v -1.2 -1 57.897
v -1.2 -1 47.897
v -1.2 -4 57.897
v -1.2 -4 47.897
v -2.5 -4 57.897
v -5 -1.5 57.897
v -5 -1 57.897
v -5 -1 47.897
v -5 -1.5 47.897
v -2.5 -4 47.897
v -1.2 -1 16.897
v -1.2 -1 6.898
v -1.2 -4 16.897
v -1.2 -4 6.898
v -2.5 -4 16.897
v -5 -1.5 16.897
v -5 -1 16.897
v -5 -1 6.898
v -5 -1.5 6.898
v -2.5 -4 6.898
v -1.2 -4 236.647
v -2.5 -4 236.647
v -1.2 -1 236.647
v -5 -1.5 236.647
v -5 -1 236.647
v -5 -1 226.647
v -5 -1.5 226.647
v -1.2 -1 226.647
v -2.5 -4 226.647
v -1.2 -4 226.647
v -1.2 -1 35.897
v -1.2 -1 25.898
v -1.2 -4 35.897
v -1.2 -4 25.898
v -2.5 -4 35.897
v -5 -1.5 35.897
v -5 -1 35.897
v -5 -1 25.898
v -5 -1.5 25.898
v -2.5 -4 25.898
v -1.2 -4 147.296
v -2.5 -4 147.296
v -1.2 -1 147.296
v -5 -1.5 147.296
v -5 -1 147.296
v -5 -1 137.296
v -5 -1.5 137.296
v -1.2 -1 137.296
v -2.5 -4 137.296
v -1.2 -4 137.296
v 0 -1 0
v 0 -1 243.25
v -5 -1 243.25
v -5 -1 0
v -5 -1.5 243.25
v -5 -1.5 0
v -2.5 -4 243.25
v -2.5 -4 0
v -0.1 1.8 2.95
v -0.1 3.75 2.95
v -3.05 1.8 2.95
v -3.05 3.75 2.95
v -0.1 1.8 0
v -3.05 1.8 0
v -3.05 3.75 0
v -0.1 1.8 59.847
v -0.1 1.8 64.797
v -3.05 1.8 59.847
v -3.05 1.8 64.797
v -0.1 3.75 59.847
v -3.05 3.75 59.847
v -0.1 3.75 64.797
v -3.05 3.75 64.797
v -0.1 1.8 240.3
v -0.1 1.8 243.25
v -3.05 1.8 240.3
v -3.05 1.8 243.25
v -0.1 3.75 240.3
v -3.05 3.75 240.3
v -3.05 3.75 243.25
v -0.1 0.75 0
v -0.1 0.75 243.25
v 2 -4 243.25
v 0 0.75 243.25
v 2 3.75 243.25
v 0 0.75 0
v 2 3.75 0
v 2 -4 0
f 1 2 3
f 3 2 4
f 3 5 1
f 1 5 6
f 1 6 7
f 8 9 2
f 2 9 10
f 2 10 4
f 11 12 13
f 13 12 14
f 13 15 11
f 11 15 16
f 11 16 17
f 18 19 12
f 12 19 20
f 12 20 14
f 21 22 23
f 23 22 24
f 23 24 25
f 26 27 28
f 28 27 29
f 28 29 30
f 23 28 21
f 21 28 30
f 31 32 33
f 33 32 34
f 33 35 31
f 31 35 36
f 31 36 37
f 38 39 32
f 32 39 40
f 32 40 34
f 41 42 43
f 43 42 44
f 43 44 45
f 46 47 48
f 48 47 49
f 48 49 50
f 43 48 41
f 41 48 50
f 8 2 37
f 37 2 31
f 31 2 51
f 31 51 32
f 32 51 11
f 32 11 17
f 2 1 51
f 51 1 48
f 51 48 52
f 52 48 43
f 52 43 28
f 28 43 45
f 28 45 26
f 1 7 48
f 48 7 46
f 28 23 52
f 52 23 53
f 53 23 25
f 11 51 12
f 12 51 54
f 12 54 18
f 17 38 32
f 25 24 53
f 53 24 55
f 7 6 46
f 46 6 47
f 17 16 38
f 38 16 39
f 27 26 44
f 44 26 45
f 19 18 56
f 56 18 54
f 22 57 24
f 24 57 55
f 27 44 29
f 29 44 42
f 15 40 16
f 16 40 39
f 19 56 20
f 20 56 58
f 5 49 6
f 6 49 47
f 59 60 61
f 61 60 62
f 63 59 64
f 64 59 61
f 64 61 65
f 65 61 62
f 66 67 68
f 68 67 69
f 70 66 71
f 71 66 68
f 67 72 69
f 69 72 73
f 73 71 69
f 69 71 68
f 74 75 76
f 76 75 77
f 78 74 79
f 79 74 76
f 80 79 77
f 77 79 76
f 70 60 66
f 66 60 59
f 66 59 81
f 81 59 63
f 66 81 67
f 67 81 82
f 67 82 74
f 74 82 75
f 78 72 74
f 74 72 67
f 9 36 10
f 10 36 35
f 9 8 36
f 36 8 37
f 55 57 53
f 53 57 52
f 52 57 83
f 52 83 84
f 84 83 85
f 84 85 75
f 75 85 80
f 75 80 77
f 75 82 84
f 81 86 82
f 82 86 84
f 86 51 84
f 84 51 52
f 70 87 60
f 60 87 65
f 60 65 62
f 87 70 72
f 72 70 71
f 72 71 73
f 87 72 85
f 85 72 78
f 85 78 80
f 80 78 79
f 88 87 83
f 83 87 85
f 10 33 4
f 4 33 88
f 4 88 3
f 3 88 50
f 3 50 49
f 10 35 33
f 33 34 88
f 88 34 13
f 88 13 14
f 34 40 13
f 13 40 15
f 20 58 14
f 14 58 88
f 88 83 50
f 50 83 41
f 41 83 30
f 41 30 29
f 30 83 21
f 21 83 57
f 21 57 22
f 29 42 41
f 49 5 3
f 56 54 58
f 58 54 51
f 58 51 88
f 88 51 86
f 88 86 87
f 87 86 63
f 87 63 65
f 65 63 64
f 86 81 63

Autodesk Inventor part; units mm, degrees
ref_plane "YZ Plane" through (0, 0, 0) normal (1, 0, 0) x (0, 1, 0)
ref_plane "XZ Plane" through (0, 0, 0) normal (0, 1, 0) x (-1, 0, 0)
ref_plane "XY Plane" through (0, 0, 0) normal (0, 0, 1) x (1, 0, 0)
sketch "Sketch1" plane through (0, 0, 0) normal (0, 0, 1) x (1, 0, 0)
  line L0 (0, 3.75) -> (2, 3.75)
  line L1 (2, 3.75) -> (2, -4)
  line L2 (2, -4) -> (0, -4)
  line L3 (0, -4) -> (0, 3.75) construction
  line L4 (0, -4) -> (-5, -4)
  line L5 (-5, -4) -> (-5, -1)
  line L6 (-5, -1) -> (0, -1)
  line L7 (0, 3.75) -> (-1, 3.75)
  line L8 (-1, 3.75) -> (-1, 0.75)
  line L9 (-1, 0.75) -> (0, 0.75)
  line L10 (0, 0.75) -> (0, 3.75) construction
  line L11 (0, 0.75) -> (0, -1)
  point P0 (0, 0)
  point P1 (0, -0.125)
  point P2 (1, 3.75)
  dimension "d0" = 4
  dimension "d1" = 2
  dimension "d5" = 5
  dimension "d6" = 1.75
  dimension "d7" = 3
  dimension "d11" = 3
  dimension "d12" = 3
extrude "Extrusion1" add sketch "Sketch1" along normal blind 243.25
sketch "Sketch2" plane through (-1, 0.75, 0) normal (-1, 0, 0) x (0, 0, 1)
  line L0 (0, 3) -> (0, 0) projected
  line L1 (0, 0) -> (243.25, 0) projected
  line L2 (243.25, 3) -> (243.25, 0) projected
  line L3 (0, 3) -> (243.25, 3) projected
  point P0 (0, -0.75)
extrude "Extrusion2" cut sketch "Sketch2" against normal blind 0.9
chamfer "Chamfer1" distance 2.5 angle 45 1 edges at (-5, -4, 121.625)
sketch "Sketch3" plane through (-0.1, 0.75, 0) normal (-1, 0, 0) x (0, 0, 1)
  line L0 (0, 3) -> (243.25, 3) projected
  line L1 (0, 3) -> (2.95, 3)
  line L2 (2.95, 3) -> (2.95, 1.05)
  line L3 (2.95, 1.05) -> (0, 1.05)
  line L4 (0, 1.05) -> (0, 3)
  line L5 (59.8466, 2.85) -> (59.8466, 0.85) construction
  line L6 (59.8466, 2.85) -> (59.8466, 3) construction
  line L7 (59.8466, 3) -> (64.7966, 3)
  line L8 (64.7966, 3) -> (64.7966, 1.05)
  line L9 (64.7966, 1.05) -> (59.8466, 1.05)
  line L10 (59.8466, 1.05) -> (59.8466, 3)
  line L11 (243.25, 3) -> (243.25, 0) projected
  line L12 (243.25, 3) -> (240.3, 3)
  line L13 (240.3, 3) -> (240.3, 1.05)
  line L14 (240.3, 1.05) -> (243.25, 1.05)
  line L15 (243.25, 1.05) -> (243.25, 3)
  point P0 (0, -0.75)
  point P1 (243.25, 1.05)
  dimension "d18" = 1.95
  dimension "d19" = 2.95
  dimension "d20" = 4.95
  dimension "d21" = 1.95
  dimension "d22" = 1.95
  dimension "d23" = 2.95
extrude "Extrusion3" add sketch "Sketch3" along normal blind 2.95
sketch "Sketch4" plane through (2, -4, 0) normal (0, -1, 0) x (1, 0, 0)
  circle A0 centre (-4.4525, -10.6025) radius 0.725 construction
  line L0 (-3.2, -15.005) -> (-3.2, -1) construction
  line L1 (-4.5, 0) -> (0, 0) construction
  line L2 (-4.5, 243.25) -> (0, 243.25) construction
  circle A1 centre (-10.2025, 230.7475) radius 2.55 construction
  circle A2 centre (-10.1275, 141.3958) radius 2.55 construction
  circle A3 centre (-10.2025, 51.9975) radius 2.55 construction
  circle A4 centre (-10.2025, 29.9975) radius 2.55 construction
  circle A5 centre (-10.2025, 10.9975) radius 2.55 construction
  line L3 (-3.2, 6.8975) -> (-7, 6.8975)
  line L4 (-7, 6.8975) -> (-7, 16.8975)
  line L5 (-7, 16.8975) -> (-3.2, 16.8975)
  line L6 (-3.2, 16.8975) -> (-3.2, 6.8975)
  line L7 (-3.2, 25.8975) -> (-7, 25.8975)
  line L8 (-7, 25.8975) -> (-7, 35.8975)
  line L9 (-7, 35.8975) -> (-3.2, 35.8975)
  line L10 (-3.2, 35.8975) -> (-3.2, 25.8975)
  line L11 (-3.2, 47.8975) -> (-7, 47.8975)
  line L12 (-7, 47.8975) -> (-7, 57.8975)
  line L13 (-7, 57.8975) -> (-3.2, 57.8975)
  line L14 (-3.2, 57.8975) -> (-3.2, 47.8975)
  line L15 (-3.2, 137.2957) -> (-7, 137.2957)
  line L16 (-7, 137.2957) -> (-7, 147.2957)
  line L17 (-7, 147.2957) -> (-3.2, 147.2957)
  line L18 (-3.2, 147.2957) -> (-3.2, 137.2957)
  line L19 (-2.1, 243.25) -> (-2.1, 0) projected
  line L20 (-2.1, 236.6475) -> (-2.1, 226.6475)
  circle A6 centre (-10.2025, -8.0025) radius 2.55 construction
  circle A7 centre (-5.5025, -3.6025) radius 0.725 construction
  line L21 (-3.2, -12.1025) -> (-10.2025, -12.1025) construction
  line L22 (-10.2025, -12.1025) -> (-10.2025, -2.1025) construction
  line L23 (-10.2025, -2.1025) -> (-3.2, -2.1025) construction
  line L24 (-7, 243.25) -> (-7, 0) construction
  line L25 (-7, 0) -> (-7, 243.25) projected
  line L26 (-7, 226.6475) -> (-3.2, 226.6475)
  line L27 (-3.2, 226.6475) -> (-3.2, 236.6475)
  line L28 (-3.2, 236.6475) -> (-7, 236.6475)
  line L29 (-7, 236.6475) -> (-7, 226.6475)
  point P0 (-2, 0)
  dimension "d26" = 1.5
  dimension "d27" = 1.5
  dimension "d28" = 4.1
  dimension "d29" = 5.9
  dimension "d30" = 4.1
  dimension "d31" = 5.9
  dimension "d32" = 4.1
  dimension "d33" = 5.9
  dimension "d34" = 4.1
  dimension "d35" = 5.9
  dimension "d36" = 4.1
  dimension "d37" = 5.9
  dimension "d40" = 4.1
  dimension "d41" = 5.9
extrude "Extrusion4" cut sketch "Sketch4" against normal up to surface (3 mm away)
equation "\"d30\" = d28"
equation "\"d31\" = d29"
equation "\"d32\" = d28"
equation "\"d33\" = d29"
equation "\"d34\" = d28"
equation "\"d35\" = d29"
equation "\"d36\" = d28"
equation "\"d37\" = d29"
equation "\"d40\" = d28"
equation "\"d41\" = d29"
properties part number "Case Rail" material "PET Plastic"
